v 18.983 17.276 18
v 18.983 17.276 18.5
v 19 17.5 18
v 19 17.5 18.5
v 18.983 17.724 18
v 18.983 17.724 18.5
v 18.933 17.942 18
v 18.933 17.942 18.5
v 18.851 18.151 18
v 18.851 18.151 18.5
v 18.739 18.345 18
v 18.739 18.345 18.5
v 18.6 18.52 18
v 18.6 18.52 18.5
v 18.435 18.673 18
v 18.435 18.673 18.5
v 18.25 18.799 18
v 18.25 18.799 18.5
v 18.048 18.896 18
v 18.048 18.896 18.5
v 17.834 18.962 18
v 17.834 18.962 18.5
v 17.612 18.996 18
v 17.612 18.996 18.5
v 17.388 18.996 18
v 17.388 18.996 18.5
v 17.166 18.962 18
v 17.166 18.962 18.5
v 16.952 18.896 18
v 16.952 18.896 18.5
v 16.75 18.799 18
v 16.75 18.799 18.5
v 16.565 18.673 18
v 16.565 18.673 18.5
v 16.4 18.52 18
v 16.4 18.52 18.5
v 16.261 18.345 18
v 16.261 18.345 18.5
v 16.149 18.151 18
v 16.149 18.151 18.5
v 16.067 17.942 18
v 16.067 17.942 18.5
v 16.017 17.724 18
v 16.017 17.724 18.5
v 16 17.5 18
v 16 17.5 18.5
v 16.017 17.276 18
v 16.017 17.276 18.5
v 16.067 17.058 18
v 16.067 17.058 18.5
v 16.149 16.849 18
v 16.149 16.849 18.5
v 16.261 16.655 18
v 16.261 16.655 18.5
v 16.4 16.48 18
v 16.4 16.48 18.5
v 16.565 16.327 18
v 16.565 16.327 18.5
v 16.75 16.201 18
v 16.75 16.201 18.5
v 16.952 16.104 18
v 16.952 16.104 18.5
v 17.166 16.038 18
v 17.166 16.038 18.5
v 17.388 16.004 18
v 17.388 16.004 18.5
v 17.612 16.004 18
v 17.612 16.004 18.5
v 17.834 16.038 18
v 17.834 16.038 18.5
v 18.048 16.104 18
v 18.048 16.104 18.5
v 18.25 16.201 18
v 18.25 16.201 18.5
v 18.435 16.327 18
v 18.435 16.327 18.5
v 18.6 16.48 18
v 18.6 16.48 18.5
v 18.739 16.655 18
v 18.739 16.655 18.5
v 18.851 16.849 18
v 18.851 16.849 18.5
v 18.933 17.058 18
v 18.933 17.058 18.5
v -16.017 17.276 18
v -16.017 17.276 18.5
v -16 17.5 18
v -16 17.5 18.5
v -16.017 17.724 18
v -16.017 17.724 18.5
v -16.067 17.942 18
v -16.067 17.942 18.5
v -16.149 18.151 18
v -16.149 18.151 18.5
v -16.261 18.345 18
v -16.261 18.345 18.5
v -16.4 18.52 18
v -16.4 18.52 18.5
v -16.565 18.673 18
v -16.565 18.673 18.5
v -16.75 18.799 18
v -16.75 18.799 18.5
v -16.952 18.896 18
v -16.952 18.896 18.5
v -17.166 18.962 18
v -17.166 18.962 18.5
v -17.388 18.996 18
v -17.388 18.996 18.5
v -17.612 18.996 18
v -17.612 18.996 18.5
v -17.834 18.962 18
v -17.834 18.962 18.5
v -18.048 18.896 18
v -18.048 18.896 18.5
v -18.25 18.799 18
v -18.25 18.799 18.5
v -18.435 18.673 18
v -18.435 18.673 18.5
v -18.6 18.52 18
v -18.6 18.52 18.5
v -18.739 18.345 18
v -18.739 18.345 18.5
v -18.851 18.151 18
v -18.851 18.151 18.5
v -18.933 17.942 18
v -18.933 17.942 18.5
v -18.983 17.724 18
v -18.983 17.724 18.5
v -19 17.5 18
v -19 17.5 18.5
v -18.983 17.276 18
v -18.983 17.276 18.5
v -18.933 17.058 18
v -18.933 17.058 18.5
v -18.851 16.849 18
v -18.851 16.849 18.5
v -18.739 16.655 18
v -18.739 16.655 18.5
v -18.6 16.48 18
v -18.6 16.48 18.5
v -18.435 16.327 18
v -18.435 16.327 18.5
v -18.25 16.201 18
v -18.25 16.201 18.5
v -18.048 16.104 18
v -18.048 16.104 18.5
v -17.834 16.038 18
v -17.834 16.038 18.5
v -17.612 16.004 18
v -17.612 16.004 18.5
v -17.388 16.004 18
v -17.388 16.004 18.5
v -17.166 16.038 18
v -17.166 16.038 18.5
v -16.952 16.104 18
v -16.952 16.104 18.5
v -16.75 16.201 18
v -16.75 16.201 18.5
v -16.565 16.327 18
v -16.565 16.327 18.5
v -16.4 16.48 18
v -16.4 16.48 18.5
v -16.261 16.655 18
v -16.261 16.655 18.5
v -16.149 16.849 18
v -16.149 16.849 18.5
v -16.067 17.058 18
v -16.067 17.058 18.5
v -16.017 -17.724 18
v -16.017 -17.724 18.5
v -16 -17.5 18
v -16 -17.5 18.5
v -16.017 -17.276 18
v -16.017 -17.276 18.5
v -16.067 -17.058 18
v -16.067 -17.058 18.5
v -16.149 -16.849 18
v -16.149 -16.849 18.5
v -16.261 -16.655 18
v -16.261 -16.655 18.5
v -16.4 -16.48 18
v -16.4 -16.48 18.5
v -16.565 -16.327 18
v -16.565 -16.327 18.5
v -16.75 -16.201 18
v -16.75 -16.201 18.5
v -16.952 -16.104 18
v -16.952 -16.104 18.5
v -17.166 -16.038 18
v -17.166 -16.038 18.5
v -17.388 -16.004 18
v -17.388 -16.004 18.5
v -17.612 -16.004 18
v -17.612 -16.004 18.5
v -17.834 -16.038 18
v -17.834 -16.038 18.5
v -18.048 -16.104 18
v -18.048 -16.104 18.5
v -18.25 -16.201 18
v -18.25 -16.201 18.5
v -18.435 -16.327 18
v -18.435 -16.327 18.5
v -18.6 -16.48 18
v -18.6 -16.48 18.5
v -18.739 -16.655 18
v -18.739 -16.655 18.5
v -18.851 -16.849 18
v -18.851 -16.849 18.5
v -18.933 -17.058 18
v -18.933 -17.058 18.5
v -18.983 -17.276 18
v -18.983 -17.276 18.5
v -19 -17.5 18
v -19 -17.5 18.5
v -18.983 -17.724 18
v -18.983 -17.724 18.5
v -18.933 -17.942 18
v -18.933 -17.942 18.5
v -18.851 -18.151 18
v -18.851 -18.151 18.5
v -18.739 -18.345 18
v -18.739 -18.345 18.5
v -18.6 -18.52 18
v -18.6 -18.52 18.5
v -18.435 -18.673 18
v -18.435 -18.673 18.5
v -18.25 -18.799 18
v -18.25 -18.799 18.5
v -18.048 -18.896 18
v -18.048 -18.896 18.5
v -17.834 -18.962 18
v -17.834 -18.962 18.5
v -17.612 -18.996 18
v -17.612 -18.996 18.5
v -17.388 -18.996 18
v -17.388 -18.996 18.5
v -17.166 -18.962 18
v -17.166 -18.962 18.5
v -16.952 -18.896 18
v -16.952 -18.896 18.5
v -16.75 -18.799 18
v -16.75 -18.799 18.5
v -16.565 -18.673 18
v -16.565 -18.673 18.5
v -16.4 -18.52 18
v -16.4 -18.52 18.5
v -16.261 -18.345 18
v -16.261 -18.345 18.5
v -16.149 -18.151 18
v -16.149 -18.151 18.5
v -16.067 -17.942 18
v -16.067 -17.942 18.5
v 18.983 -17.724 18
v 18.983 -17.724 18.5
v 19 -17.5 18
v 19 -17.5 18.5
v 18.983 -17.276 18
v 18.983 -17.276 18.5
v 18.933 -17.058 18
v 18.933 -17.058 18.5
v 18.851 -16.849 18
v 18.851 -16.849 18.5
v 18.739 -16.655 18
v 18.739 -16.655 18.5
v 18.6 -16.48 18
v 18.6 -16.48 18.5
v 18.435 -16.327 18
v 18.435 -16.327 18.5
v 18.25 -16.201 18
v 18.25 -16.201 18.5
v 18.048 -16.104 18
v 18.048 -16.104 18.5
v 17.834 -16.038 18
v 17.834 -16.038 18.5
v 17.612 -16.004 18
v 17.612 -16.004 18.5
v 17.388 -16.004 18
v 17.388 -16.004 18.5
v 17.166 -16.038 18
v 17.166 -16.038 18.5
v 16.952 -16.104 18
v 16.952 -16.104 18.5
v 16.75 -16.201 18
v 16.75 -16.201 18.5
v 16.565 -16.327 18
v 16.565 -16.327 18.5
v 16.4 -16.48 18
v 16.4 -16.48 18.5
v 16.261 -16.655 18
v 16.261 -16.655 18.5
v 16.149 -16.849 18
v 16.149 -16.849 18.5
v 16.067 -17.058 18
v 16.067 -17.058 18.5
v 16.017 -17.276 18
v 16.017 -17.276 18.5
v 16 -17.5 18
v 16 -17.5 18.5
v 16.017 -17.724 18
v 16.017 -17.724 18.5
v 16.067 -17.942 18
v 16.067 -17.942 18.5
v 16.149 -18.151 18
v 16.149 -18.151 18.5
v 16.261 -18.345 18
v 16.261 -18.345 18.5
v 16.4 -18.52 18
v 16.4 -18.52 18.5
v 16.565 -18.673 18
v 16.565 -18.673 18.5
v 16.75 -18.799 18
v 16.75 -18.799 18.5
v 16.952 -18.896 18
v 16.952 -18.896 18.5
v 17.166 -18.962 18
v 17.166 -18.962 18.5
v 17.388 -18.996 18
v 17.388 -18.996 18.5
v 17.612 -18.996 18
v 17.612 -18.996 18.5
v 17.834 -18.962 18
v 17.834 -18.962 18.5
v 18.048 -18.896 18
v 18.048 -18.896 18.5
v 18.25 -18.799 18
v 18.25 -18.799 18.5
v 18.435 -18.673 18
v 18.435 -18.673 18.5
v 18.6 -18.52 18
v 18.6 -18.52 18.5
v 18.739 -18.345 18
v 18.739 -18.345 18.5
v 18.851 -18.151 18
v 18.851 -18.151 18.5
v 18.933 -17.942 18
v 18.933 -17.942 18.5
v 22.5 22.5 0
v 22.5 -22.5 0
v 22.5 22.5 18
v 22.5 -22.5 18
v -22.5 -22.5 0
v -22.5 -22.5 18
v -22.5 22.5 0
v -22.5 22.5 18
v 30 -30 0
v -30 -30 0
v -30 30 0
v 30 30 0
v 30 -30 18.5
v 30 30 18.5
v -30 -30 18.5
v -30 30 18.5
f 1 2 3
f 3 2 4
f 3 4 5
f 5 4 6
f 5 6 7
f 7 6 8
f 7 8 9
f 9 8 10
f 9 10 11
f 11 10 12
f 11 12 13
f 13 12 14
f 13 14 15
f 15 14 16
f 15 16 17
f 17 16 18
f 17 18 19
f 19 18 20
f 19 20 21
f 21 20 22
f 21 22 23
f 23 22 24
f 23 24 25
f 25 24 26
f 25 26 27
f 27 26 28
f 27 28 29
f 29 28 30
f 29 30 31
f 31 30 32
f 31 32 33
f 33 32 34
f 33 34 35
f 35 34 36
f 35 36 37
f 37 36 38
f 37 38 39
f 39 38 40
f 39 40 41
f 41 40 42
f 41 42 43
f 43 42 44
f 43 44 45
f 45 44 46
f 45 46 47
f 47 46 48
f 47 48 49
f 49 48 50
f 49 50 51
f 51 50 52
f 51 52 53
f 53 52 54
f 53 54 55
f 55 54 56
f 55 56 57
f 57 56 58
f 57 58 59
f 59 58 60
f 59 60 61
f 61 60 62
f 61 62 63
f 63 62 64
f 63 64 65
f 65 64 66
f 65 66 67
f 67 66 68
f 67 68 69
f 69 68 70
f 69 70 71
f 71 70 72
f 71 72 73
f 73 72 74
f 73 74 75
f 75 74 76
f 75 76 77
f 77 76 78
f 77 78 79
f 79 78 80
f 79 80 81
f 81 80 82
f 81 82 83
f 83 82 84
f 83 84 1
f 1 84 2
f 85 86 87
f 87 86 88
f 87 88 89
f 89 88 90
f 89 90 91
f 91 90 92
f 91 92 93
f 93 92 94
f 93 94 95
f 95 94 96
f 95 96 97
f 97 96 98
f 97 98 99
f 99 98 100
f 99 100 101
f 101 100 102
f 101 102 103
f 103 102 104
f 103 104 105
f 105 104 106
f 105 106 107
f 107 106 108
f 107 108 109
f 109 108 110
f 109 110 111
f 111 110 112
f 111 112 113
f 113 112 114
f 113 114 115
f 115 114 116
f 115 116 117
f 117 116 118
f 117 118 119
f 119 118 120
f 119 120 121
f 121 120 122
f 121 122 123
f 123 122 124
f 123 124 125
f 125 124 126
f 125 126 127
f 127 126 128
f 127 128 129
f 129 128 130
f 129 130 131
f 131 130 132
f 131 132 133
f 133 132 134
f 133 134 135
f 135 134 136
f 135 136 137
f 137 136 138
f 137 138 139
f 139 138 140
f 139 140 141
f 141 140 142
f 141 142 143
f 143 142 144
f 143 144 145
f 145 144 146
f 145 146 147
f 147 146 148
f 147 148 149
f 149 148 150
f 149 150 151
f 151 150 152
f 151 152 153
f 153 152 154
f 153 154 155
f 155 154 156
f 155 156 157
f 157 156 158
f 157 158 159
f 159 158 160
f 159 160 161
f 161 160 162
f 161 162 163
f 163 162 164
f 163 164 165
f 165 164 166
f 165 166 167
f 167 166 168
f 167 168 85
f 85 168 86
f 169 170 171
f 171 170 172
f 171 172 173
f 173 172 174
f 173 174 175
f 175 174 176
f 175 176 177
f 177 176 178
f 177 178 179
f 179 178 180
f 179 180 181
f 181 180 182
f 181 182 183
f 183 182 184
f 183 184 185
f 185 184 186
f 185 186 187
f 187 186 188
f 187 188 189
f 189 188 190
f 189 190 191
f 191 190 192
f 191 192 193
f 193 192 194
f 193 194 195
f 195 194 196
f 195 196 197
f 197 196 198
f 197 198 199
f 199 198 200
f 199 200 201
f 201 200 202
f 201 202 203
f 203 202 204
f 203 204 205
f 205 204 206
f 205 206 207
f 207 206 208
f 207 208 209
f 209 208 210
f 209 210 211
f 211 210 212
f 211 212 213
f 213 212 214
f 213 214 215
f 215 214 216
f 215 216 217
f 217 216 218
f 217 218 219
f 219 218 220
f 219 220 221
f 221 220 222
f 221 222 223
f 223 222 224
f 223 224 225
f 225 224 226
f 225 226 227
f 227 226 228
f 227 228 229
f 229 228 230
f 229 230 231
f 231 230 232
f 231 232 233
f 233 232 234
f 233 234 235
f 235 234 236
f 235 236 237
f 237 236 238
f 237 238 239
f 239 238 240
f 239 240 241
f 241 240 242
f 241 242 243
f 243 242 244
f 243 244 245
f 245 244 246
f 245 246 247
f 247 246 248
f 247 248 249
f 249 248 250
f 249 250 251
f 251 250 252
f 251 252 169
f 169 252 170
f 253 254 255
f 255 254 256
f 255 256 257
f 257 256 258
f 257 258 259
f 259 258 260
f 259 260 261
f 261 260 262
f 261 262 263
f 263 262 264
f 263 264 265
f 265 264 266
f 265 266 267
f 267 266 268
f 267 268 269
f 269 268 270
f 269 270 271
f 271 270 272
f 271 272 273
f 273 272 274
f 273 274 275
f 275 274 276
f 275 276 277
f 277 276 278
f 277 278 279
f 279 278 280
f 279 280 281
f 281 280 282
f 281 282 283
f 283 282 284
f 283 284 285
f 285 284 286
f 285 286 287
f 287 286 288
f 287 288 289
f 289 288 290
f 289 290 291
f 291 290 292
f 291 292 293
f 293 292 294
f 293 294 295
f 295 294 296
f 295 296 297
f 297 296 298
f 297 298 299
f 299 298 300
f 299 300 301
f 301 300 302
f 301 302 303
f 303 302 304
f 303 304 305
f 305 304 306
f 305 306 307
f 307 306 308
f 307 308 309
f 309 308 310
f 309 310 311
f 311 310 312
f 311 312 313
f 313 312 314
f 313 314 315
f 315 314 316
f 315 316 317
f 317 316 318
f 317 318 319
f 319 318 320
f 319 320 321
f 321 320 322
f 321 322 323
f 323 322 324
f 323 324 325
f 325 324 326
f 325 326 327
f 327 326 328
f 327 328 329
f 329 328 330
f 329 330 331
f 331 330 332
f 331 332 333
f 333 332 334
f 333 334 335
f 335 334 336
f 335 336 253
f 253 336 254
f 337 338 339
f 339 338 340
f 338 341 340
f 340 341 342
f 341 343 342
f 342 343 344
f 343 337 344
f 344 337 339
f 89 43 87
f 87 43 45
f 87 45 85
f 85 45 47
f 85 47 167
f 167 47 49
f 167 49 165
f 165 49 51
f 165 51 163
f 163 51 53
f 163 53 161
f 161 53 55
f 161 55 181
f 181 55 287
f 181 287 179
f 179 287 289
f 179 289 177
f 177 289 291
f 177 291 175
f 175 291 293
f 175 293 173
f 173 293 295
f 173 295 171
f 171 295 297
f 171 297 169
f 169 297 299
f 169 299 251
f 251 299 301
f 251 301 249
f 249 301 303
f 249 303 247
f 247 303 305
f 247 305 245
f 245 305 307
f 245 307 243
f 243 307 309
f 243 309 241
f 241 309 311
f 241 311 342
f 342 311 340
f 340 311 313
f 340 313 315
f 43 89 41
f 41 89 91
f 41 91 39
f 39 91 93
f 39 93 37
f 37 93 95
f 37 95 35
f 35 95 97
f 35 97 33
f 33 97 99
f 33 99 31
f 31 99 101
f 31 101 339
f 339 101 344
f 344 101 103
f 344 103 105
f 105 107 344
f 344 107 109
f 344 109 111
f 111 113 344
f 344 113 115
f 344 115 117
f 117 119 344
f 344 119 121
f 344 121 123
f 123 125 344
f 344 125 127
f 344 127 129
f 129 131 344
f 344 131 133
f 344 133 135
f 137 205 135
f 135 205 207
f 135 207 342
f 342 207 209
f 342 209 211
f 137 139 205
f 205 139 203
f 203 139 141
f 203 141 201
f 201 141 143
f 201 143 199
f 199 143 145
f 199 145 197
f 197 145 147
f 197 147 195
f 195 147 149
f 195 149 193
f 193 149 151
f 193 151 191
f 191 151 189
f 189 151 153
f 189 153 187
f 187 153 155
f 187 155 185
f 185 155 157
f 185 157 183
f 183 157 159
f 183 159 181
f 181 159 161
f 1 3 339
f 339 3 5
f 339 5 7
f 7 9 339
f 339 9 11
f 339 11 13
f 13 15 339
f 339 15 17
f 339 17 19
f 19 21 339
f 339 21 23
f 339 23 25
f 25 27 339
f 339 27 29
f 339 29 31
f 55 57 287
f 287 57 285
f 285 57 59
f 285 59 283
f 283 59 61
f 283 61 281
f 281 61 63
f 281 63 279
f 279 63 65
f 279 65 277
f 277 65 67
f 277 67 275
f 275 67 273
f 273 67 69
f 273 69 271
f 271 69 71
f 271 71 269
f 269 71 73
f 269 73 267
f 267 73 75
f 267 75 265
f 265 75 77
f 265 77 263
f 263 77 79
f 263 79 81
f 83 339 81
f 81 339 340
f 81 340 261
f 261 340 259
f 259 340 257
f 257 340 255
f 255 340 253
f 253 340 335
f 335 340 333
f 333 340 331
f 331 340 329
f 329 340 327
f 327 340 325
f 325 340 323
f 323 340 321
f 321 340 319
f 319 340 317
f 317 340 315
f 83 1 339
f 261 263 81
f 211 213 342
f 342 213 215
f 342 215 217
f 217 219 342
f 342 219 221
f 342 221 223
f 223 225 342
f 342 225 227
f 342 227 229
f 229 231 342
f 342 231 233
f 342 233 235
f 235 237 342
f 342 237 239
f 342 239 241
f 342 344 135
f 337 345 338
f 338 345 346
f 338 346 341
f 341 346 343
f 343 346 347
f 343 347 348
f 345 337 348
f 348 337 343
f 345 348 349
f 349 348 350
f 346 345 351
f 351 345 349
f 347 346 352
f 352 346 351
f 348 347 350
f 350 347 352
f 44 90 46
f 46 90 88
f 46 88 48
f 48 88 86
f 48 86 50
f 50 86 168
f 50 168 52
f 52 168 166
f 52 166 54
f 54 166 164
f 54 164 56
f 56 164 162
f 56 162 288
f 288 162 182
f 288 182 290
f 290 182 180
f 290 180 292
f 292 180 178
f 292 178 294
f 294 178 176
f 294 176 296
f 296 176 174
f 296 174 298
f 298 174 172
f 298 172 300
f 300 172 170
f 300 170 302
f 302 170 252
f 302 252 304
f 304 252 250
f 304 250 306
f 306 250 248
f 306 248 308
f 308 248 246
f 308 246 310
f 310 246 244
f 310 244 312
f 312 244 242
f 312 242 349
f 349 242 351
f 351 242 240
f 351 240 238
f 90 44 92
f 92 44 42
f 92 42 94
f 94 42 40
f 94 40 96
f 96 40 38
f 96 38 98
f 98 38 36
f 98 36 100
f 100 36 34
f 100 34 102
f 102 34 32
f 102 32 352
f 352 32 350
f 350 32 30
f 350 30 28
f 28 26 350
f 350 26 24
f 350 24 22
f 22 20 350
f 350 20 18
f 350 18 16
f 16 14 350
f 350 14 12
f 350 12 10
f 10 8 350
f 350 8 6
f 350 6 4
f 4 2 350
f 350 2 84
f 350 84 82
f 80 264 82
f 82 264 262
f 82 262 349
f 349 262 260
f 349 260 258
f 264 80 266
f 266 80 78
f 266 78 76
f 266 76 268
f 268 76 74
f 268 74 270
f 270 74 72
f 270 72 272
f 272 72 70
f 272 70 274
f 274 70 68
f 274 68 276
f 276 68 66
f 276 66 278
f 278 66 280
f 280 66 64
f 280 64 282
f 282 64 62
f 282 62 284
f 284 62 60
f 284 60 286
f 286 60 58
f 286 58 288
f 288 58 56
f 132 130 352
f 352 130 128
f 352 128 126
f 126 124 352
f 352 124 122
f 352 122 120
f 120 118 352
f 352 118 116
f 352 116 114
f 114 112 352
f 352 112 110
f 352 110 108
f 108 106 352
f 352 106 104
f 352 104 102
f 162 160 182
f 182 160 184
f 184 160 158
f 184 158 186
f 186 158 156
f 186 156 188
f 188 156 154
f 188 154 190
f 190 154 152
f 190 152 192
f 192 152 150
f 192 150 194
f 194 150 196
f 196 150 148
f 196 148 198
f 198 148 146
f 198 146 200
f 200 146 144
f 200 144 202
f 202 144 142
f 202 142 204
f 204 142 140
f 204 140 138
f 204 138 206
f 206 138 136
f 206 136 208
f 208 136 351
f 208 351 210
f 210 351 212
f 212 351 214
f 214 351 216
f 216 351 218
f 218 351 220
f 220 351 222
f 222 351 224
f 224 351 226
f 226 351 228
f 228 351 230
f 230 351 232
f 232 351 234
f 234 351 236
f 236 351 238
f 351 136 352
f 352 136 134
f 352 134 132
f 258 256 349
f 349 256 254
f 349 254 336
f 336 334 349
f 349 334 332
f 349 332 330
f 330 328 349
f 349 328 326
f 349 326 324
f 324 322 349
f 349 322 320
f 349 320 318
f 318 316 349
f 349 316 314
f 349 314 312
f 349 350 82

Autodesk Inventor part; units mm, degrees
ref_plane "YZ Plane" through (0, 0, 0) normal (1, 0, 0) x (0, 1, 0)
ref_plane "XZ Plane" through (0, 0, 0) normal (0, 1, 0) x (-1, 0, 0)
ref_plane "XY Plane" through (0, 0, 0) normal (0, 0, 1) x (1, 0, 0)
sketch "Sketch1" plane through (0, 0, 0) normal (0, 0, 1) x (1, 0, 0)
  circle A0 centre (-17.5, -17.5) radius 1.5
  circle A1 centre (17.5, -17.5) radius 1.5
  circle A2 centre (17.5, 17.5) radius 1.5
  circle A3 centre (-17.5, 17.5) radius 1.5
  line L0 (-22.5, 22.5) -> (22.5, 22.5)
  line L1 (22.5, 22.5) -> (22.5, -22.5)
  line L2 (22.5, -22.5) -> (-22.5, -22.5)
  line L3 (-22.5, -22.5) -> (-22.5, 22.5)
  point P0 (0, 0)
  dimension "d4" = 3
  dimension "d5" = 3
  dimension "d6" = 3
  dimension "d7" = 3
  dimension "d8" = 35
  dimension "d9" = 35
  dimension "d10" = 35
  dimension "d13" = 45
  dimension "d14" = 45
  dimension "d15" = 22.5
  dimension "d16" = 22.5
  dimension "d17" = 5
  dimension "d18" = 5
sketch "Sketch2" plane through (0, 0, 0) normal (0, 0, 1) x (1, 0, 0)
  line L0 (-30, 30) -> (30, 30)
  line L1 (30, 30) -> (30, -30)
  line L2 (30, -30) -> (-30, -30)
  line L3 (-30, -30) -> (-30, 30)
  point P0 (0, 0)
  dimension "d20" = 60
  dimension "d21" = 60
  dimension "d22" = 30
  dimension "d23" = 30
extrude "Extrusion1" add sketch "Sketch2" along normal blind 18.5
extrude "Extrusion2" cut sketch "Sketch1" along normal blind 18
sketch "Sketch3" plane through (-17.5, 17.5, 0) normal (0, 0, -1) x (-1, 0, 0)
  circle A0 centre (0, 0) radius 1.5 projected
  circle A1 centre (0, -35) radius 1.5 projected
  circle A2 centre (-35, 0) radius 1.5 projected
  circle A3 centre (-35, -35) radius 1.5 projected
  point P0 (-17.5, -17.5)
extrude "Extrusion3" cut sketch "Sketch3" against normal blind 19
properties part number "soporte_iman"
